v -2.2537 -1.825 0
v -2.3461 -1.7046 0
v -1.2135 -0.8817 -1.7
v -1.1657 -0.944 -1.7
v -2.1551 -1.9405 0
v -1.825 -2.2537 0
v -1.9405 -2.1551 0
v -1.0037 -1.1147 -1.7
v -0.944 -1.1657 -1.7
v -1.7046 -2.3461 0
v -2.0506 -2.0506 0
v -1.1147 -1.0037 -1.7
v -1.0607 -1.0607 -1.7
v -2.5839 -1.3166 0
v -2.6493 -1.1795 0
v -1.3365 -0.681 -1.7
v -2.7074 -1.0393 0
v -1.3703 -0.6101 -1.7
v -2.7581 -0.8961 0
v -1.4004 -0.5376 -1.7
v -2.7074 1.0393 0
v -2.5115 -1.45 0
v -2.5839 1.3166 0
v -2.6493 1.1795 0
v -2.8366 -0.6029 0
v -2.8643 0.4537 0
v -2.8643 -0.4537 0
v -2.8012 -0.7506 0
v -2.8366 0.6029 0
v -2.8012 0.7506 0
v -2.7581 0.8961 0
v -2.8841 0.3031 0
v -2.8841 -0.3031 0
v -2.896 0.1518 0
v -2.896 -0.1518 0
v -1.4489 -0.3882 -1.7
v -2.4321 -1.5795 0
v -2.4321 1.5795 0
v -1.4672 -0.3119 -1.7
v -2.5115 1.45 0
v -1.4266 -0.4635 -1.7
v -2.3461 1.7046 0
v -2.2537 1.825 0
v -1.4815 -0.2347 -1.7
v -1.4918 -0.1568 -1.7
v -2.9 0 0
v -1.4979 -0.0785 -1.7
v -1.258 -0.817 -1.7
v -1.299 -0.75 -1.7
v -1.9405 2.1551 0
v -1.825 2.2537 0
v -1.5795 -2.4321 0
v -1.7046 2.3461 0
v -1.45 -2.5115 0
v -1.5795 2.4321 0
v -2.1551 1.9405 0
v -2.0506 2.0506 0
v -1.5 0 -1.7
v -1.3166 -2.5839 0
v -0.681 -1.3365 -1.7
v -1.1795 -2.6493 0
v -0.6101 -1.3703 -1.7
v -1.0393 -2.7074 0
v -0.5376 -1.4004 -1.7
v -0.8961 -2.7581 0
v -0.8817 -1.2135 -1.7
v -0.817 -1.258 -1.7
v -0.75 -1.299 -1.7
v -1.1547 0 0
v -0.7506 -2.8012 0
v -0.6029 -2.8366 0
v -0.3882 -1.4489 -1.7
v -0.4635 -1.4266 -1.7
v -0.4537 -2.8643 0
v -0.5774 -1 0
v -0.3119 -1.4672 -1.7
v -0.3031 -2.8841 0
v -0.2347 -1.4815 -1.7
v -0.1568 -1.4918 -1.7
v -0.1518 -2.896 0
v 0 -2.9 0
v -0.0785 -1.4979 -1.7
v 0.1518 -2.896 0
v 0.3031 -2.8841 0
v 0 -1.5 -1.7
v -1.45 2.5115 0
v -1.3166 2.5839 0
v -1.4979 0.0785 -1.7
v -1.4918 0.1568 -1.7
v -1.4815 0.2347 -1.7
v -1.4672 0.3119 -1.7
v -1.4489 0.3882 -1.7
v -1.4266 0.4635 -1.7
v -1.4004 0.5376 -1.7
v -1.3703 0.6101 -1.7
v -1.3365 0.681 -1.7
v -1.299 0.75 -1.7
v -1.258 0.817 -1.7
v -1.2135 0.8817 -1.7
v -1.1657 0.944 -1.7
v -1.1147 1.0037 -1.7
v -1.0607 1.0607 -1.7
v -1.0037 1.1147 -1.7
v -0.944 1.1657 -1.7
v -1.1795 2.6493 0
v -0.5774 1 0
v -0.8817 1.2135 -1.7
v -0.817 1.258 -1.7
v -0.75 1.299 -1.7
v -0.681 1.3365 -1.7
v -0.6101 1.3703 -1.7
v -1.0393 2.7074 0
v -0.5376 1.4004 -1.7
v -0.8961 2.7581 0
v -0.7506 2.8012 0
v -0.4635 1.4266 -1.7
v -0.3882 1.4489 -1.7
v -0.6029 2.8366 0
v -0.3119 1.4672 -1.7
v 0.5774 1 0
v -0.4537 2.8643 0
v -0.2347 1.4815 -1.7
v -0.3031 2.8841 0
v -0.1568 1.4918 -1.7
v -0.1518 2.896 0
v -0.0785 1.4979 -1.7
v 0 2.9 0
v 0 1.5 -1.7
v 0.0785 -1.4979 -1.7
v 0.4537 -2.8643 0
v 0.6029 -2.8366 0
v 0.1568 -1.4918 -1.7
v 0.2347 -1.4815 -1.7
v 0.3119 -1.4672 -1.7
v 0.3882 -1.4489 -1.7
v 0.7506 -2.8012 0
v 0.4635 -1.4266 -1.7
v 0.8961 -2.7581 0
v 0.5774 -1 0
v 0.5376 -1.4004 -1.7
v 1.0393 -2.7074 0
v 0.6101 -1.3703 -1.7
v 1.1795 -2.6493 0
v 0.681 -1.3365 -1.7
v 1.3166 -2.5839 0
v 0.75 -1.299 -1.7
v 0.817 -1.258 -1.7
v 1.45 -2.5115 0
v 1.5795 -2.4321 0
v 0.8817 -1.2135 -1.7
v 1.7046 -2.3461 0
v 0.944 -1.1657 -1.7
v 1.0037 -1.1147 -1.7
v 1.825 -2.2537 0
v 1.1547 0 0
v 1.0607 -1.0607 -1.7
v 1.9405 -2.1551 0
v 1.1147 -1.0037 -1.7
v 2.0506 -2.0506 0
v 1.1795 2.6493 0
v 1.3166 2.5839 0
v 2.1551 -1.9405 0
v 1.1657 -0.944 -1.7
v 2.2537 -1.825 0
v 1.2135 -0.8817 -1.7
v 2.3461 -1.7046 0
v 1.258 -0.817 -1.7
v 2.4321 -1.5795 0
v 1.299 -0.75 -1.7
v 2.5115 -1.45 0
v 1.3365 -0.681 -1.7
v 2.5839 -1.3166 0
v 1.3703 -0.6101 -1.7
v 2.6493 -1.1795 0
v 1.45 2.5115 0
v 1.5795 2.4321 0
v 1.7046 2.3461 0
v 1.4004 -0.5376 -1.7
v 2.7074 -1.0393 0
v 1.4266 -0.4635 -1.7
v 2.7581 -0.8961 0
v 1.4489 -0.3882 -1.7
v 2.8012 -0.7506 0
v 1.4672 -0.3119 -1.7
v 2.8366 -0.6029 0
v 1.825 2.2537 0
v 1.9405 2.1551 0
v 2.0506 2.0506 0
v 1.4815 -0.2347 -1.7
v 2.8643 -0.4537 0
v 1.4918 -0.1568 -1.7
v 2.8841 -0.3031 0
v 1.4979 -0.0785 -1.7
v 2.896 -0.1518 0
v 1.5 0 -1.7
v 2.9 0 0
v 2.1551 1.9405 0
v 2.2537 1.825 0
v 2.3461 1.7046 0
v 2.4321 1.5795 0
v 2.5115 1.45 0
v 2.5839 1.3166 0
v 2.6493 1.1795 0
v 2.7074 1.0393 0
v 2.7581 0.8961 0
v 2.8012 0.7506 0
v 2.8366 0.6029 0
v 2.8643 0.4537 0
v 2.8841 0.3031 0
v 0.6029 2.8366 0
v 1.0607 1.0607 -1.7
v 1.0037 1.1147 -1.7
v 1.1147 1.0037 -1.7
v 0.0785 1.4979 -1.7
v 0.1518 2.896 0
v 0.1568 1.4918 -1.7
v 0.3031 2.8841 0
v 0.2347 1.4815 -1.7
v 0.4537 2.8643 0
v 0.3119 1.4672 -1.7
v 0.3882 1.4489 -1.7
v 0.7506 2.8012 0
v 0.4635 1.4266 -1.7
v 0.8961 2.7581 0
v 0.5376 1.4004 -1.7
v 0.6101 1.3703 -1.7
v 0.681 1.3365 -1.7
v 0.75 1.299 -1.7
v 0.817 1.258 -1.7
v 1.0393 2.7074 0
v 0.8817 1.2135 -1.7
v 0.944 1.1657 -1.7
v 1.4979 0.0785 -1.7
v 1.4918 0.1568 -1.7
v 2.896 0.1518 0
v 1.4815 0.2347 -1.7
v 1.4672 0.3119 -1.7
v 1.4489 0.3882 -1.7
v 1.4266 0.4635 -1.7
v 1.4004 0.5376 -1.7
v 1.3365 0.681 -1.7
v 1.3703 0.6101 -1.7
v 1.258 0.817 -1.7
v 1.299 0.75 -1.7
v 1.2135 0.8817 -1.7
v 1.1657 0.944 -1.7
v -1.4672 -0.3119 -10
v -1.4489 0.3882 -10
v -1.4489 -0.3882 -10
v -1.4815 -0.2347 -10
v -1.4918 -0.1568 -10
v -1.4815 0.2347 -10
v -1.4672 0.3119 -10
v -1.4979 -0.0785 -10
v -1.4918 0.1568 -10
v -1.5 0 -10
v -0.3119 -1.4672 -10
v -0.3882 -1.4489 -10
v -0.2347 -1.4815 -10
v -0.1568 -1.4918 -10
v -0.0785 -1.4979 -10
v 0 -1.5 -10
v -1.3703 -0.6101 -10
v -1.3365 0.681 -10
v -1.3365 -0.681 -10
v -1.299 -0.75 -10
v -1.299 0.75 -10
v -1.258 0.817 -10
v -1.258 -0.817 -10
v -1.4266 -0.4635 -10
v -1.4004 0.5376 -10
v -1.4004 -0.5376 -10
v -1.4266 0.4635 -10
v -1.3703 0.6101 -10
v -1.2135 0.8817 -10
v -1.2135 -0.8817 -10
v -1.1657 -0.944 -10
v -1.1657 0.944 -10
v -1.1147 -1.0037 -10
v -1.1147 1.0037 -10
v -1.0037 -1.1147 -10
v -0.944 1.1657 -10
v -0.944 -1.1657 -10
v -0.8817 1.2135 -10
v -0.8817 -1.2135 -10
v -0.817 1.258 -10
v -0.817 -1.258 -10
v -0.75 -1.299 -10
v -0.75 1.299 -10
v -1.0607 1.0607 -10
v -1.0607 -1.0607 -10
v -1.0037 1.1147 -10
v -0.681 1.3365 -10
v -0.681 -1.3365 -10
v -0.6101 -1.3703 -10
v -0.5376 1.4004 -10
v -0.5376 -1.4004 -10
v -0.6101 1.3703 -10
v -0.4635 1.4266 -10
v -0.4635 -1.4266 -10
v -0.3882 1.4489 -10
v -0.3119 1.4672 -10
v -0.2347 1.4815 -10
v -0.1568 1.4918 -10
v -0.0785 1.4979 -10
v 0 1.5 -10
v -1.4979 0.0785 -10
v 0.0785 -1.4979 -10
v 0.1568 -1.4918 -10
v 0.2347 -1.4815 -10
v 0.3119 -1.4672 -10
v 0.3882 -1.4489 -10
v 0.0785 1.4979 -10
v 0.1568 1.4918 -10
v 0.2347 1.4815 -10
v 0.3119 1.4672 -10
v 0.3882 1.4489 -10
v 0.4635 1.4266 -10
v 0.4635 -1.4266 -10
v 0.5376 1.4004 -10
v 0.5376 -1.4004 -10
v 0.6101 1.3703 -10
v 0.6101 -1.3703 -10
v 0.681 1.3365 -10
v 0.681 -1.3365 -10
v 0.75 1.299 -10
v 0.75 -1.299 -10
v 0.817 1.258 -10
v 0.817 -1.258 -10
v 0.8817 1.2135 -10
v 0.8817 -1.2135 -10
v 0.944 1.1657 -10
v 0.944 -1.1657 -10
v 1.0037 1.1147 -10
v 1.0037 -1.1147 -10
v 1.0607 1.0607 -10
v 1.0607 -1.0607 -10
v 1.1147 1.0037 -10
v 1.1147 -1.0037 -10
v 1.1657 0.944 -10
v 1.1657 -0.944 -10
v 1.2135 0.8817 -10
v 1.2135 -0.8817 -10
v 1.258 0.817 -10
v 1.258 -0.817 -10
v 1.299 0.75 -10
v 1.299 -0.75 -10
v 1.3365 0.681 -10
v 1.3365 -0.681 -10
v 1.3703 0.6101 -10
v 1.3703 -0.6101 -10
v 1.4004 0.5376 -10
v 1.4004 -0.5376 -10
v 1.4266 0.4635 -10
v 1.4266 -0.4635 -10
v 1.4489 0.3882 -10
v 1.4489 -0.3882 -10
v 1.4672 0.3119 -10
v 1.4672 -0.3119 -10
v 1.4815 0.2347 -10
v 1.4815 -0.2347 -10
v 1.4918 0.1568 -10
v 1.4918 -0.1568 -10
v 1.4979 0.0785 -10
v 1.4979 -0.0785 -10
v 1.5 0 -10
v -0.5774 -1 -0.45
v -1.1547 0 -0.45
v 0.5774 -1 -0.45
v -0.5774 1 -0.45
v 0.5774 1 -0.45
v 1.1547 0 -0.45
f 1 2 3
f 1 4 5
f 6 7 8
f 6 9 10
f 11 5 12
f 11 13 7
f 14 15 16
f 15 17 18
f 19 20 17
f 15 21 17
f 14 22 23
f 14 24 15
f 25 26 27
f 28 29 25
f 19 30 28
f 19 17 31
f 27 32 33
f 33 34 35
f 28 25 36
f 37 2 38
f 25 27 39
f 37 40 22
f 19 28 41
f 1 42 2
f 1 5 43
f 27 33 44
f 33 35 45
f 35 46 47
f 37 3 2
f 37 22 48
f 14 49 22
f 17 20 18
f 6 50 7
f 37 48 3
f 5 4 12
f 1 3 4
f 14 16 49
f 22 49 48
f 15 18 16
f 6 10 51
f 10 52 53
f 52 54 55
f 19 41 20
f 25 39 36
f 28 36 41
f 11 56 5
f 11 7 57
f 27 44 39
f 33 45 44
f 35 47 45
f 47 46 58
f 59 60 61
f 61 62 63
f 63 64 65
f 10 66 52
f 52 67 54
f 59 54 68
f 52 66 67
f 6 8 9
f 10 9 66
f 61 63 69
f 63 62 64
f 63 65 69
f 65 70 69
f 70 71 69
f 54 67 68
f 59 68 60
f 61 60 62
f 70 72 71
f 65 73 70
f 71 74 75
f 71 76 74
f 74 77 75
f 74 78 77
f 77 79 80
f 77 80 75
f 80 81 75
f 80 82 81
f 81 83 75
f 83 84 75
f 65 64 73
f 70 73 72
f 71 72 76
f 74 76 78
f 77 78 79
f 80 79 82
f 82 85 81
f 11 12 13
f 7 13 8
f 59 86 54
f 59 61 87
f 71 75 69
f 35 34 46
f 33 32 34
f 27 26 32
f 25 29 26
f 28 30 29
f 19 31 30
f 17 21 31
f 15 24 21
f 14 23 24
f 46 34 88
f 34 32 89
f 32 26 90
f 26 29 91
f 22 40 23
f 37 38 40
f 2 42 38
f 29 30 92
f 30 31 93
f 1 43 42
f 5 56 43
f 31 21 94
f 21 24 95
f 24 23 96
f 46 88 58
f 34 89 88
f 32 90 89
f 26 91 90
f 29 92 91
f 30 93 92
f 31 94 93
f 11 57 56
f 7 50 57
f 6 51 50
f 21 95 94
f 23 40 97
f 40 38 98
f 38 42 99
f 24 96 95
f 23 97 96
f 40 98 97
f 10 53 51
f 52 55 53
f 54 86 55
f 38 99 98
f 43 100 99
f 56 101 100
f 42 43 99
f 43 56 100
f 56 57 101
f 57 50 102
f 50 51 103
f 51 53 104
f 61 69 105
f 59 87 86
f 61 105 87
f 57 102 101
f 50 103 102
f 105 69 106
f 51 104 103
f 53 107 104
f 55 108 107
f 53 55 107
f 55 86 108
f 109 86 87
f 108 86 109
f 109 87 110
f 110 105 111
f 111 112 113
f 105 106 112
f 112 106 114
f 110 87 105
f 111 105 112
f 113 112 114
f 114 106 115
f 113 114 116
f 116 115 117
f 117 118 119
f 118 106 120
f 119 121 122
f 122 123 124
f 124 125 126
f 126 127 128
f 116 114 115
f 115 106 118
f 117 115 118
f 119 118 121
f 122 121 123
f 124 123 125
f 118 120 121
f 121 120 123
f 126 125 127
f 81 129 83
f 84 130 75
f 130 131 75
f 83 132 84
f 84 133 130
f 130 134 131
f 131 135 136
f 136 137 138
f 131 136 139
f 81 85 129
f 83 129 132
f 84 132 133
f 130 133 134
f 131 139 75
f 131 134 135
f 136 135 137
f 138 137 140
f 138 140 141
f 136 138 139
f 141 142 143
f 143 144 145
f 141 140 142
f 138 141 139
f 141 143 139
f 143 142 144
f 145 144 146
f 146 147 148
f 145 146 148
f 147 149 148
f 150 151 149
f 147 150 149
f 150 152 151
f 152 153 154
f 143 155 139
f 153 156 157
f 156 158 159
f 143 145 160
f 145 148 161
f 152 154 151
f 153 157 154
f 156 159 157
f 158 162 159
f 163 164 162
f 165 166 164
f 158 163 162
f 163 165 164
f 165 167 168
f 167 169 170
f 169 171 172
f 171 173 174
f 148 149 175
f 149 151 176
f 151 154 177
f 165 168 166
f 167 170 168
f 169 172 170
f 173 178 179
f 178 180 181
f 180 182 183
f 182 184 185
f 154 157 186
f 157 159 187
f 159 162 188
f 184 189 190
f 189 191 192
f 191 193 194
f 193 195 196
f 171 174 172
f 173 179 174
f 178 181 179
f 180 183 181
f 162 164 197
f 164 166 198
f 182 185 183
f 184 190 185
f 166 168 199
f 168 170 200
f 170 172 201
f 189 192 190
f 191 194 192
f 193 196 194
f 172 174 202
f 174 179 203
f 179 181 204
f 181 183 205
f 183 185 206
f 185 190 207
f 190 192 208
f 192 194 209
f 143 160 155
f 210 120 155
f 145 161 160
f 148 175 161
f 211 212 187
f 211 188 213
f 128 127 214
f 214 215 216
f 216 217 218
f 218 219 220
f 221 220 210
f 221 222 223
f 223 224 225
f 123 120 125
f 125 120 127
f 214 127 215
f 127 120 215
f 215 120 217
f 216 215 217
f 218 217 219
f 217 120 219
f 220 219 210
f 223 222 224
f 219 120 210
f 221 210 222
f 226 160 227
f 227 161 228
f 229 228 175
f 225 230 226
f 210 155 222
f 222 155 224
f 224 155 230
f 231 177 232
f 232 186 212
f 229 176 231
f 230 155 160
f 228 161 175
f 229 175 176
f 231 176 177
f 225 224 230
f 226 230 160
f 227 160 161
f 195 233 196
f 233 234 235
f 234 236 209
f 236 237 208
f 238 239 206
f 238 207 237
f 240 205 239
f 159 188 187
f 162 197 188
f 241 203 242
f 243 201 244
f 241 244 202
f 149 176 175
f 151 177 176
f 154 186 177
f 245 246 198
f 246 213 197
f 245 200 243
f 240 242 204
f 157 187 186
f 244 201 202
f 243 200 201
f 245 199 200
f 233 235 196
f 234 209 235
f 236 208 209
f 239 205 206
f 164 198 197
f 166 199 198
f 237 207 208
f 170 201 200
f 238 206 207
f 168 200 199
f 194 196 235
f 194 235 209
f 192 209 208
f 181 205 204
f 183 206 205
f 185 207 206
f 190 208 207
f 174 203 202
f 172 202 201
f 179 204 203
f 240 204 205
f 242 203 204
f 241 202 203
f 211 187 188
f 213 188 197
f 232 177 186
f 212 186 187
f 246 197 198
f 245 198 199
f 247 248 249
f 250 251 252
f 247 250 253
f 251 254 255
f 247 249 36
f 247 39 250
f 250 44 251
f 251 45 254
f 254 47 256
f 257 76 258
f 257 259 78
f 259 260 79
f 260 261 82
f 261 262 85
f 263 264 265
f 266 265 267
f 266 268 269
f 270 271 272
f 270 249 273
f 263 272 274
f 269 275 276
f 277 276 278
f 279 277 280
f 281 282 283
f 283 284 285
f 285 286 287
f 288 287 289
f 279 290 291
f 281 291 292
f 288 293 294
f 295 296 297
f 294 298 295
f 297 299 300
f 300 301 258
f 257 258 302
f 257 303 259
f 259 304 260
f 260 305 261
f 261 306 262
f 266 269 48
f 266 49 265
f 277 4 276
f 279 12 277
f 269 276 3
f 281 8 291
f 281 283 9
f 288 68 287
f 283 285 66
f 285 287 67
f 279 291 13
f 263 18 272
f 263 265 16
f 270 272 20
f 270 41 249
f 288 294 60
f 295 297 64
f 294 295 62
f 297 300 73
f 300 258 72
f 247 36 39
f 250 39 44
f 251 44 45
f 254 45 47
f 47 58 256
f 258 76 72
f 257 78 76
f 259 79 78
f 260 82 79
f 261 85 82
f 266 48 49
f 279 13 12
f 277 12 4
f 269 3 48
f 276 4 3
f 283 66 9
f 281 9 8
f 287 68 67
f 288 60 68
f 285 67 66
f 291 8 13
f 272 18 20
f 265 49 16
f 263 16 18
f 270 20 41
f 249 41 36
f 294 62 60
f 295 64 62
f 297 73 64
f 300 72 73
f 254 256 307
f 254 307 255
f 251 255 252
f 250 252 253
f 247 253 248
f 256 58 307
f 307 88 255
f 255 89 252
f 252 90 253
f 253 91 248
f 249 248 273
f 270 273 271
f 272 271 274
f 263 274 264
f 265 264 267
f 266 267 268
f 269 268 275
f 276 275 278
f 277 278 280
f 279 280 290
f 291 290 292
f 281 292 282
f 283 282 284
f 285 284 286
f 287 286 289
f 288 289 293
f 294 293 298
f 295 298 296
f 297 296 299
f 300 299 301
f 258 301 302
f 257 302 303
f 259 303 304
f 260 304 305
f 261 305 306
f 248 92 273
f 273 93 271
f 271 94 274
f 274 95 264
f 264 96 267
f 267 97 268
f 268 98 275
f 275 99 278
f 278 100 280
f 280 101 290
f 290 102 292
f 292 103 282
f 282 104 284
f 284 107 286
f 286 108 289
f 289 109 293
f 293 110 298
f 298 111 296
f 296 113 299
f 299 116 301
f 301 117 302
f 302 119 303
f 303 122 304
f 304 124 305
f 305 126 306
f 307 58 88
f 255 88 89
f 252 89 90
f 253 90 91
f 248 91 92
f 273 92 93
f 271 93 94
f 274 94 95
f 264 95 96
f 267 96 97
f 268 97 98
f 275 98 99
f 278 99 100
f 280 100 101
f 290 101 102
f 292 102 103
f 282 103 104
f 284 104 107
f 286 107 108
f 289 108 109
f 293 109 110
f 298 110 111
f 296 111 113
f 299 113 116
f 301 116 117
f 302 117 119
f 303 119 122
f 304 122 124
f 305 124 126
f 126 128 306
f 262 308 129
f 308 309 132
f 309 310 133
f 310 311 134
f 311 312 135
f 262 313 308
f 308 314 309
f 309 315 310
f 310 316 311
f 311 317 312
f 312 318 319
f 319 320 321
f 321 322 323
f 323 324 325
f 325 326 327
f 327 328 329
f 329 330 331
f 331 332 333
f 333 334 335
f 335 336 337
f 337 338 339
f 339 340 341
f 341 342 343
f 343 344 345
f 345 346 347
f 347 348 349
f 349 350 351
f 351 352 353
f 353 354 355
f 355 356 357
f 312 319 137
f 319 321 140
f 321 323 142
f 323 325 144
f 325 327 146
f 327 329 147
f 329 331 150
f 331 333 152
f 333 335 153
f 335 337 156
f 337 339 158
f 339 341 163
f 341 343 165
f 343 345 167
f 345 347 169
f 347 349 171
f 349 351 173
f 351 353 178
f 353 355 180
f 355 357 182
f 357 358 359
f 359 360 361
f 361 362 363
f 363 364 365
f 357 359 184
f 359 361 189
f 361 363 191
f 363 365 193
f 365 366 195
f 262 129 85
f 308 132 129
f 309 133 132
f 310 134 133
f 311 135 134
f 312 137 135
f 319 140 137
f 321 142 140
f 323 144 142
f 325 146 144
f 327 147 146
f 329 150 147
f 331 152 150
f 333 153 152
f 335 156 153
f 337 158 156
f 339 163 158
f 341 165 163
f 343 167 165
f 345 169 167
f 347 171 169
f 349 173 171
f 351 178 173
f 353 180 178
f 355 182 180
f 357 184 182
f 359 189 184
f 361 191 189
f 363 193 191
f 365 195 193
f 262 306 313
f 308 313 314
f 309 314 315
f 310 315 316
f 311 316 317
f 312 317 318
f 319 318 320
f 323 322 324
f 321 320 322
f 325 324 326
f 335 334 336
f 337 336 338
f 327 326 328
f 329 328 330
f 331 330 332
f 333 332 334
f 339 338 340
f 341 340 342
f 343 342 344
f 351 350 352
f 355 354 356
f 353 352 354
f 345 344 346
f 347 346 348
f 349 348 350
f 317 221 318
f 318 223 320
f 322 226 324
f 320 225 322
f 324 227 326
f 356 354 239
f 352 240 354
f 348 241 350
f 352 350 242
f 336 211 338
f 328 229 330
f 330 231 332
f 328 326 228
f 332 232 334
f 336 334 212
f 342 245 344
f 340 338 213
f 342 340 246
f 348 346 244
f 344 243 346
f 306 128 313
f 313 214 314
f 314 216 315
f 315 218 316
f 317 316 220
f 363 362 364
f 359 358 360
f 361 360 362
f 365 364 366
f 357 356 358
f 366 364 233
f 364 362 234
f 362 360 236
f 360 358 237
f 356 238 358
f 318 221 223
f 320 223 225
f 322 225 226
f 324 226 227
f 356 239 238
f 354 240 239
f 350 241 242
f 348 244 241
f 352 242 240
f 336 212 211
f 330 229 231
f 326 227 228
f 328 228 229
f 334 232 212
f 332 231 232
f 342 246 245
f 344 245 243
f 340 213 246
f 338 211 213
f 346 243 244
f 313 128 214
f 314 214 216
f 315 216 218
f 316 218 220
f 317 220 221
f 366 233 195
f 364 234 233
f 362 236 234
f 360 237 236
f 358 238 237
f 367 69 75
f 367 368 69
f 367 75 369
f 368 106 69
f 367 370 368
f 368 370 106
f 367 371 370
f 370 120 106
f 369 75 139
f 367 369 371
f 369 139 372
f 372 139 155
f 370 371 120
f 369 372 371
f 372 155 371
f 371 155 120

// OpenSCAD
// file: C:/gh/oomlout_oobb_part_motor_gearbox_wave_drive_version_5/parts/oobb_part_motor_gearbox_wave_drive_version_5_12_to_1_reduction/compact_helpers.scad
// Reusable native geometry helpers.
function polar(r,a)=[r*cos(a),r*sin(a)];
function rotate_point(p,a)=[p[0]*cos(a)-p[1]*sin(a),p[0]*sin(a)+p[1]*cos(a)];
function profile_point(t)=let(
    s=sqrt(pow(pitch_radius,2)-pow(eccentricity*sin(cavity_count*t),2)),
    r=eccentricity*cos(cavity_count*t)+s,
    xi=atan2(eccentricity*cavity_count*sin(cavity_count*t),s),
    rr=roller_radius+profile_clearance)
    [r*cos(t)+rr*cos(t+xi),r*sin(t)+rr*sin(t+xi)];
function profile_points(upper=false)=[for(i=[0:cavity_count*profile_samples_per_cavity-1])
    rotate_point(profile_point(360*i/(cavity_count*profile_samples_per_cavity)),0)];
function roller_position(i,a,upper=false)=let(
    t=-a/roller_count+360*i/roller_count,
    rel=t-a-(upper?180:0),
    r=eccentricity*cos(rel)+sqrt(pow(pitch_radius,2)-pow(eccentricity*sin(rel),2))) polar(r,t);
module tube(ro,ri,h) { difference() { cylinder(r=ro,h=h); translate([0,0,-eps]) cylinder(r=ri,h=h+2*eps); } }
module screw_hole(size,h) { scale([1,1,h]) { if(size=="m2") oobb_hole_m2(); if(size=="m3") oobb_hole_m3(); if(size=="m6") oobb_hole_m6(); } }
module socket_recess(size,depth) {
    // OOBB socket head starts at the under-head plane and extends outward.
    scale([1,1,depth/(size=="m3"?3.2:2.2)]) {
        if(size=="m3") oobb_socket_m3(); else oobb_socket_m2();
    }
}
module at_mounts(points) { for(p=points) translate([p[0],p[1],0]) children(); }
module shaft_cut(h,fit=shaft_fit_clearance) {
    linear_extrude(h) intersection() {
        circle(r=input_shaft_diameter/2+fit);
        translate([-10,-10]) square([10+input_shaft_diameter/2-input_shaft_flat_depth+fit,20]);
    }
}
module rounded_rectangle_plate(size=[119,119,3],radius=1.5) {
    hull() for(x=[-1,1],y=[-1,1]) translate([x*(size[0]/2-radius),y*(size[1]/2-radius),0]) cylinder(r=radius,h=size[2]);
}
module grid_cuts(h) {
    // Actual OOBB grid centres: six units are centred on half-pitch offsets.
    for(i=[0:base_width-1],j=[0:base_height-1])
        let(x=(i-(base_width-1)/2)*oobb_grid_pitch,y=(j-(base_height-1)/2)*oobb_grid_pitch)
        if(sqrt(x*x+y*y)>housing_radius+3.5)
            translate([x,y,-eps]) screw_hole("m6",h+2*eps);
}
module wave_generator() {
    render(convexity=20) difference() {
        tube(wave_radius,12.6,wave_height);
        translate([0,0,wave_seat_z]) cylinder(r=13.5+bearing_seat_clearance,h=wave_height);
        translate([0,0,wave_height-wave_cap_depth]) cylinder(r=22.15,h=wave_cap_depth+eps);
        at_mounts(wave_mounts) {
            translate([0,0,-eps]) screw_hole("m3",wave_height+2*eps);
            translate([0,0,wave_nut_z]) scale([1,1,(wave_height-wave_cap_depth-wave_nut_z+eps)/2.7]) oobb_nut_m3();
        }
    }
}
module wave_cap() {
    render(convexity=20) difference() {
        tube(22,12.6,wave_cap_depth);
        at_mounts(wave_mounts) {
            translate([0,0,-eps]) screw_hole("m3",wave_cap_depth+2*eps);
            translate([0,0,wave_cap_depth-wave_head_recess]) socket_recess("m3",wave_head_recess+eps);
        }
    }
}
// file: C:/gh/oomlout_oobb_part_motor_gearbox_wave_drive_version_5/parts/oobb_part_motor_gearbox_wave_drive_version_5_12_to_1_reduction/oobb_hardware.scad
module oobb_rounded_rectangle_edges(size, radius, radius_top, radius_bottom) {
      rt=radius_top; rb=radius_bottom; depth=size[2]; n=16;
      lower=rb==0 ? [[radius,0]] :
        [for(i=[0:n]) let(a=-90+90*i/n) [radius-rb+rb*cos(a),rb+rb*sin(a)]];
      upper=rt==0 ? [[radius,depth]] :
        [for(i=[0:n]) let(a=90*i/n) [radius-rt+rt*cos(a),depth-rt+rt*sin(a)]];
      hull() for(x=[-size[0]/2+radius,size[0]/2-radius])
        for(y=[-size[1]/2+radius,size[1]/2-radius])
          translate([x,y,0]) rotate_extrude()
            polygon(concat([[0,0]],lower,upper,[[0,depth]]));
    }
// Generated from installed OOBB v5. All primitives use overhang=True.

module oobb_motor_plate_body() {


difference() {
	union() {
		translate(v = [0, 0, 0]) {
			rotate(a = [0, 0, 0]) {
				difference() {
					union() {
						oobb_rounded_rectangle_edges(radius = 1.5, radius_bottom = 1.5, radius_top = 1.5, size = [89.0, 89.0, 4.0]);
					}
					union();
				}
			}
		}
	}
	union();
}

}

module oobb_hole_m2() {


difference() {
	union() {
		cylinder(h = 1, r = 1.35);
	}
	union();
}

}

module oobb_hole_m3() {


difference() {
	union() {
		cylinder(h = 1, r = 1.8);
	}
	union();
}

}

module oobb_hole_m6() {


difference() {
	union() {
		cylinder(h = 1, r = 3.25);
	}
	union();
}

}

module oobb_nut_m2() {


difference() {
	union() {
		translate(v = [0, 0, 0]) {
			rotate(a = [0, 0, 0]) {
				difference() {
					union() {
						linear_extrude(height = 2.2) {
							polygon(points = [[2.4234, 0.0], [1.2117000000000002, 2.0987259635312085], [-1.2116999999999996, 2.0987259635312085], [-2.4234, 2.967809053053696e-16], [-1.211700000000001, -2.098725963531208], [1.2116999999999984, -2.0987259635312094]]);
						}
						translate(v = [-1.25, -2.75, -0.3]) {
							cube(size = [2.5, 5.5, 0.3]);
						}
						translate(v = [-1.25, -1.25, -0.6]) {
							cube(size = [2.5, 2.5, 0.3]);
						}
						translate(v = [-1.25, -2.75, 2.2]) {
							cube(size = [2.5, 5.5, 0.3]);
						}
						translate(v = [-1.25, -1.25, 2.5]) {
							cube(size = [2.5, 2.5, 0.3]);
						}
					}
					union();
				}
			}
		}
	}
	union();
}

}

module oobb_socket_m2() {


difference() {
	union() {
		translate(v = [0, 0, 0]) {
			rotate(a = [0, 0, 0]) {
				difference() {
					union() {
						cylinder(h = 2.2, r = 2.1);
						translate(v = [-1.25, -2.75, -0.3]) {
							cube(size = [2.5, 5.5, 0.3]);
						}
						translate(v = [-1.25, -1.25, -0.6]) {
							cube(size = [2.5, 2.5, 0.3]);
						}
					}
					union();
				}
			}
		}
	}
	union();
}

}

module oobb_nut_m3() {


difference() {
	union() {
		translate(v = [0, 0, 0]) {
			rotate(a = [0, 0, 0]) {
				difference() {
					union() {
						linear_extrude(height = 2.7) {
							polygon(points = [[3.4619999999999997, 0.0], [1.7310000000000003, 2.9981799479017264], [-1.7309999999999992, 2.9981799479017264], [-3.4619999999999997, 4.2397272186481365e-16], [-1.7310000000000014, -2.998179947901726], [1.7309999999999977, -2.9981799479017277]]);
						}
						translate(v = [-1.75, -3.25, -0.3]) {
							cube(size = [3.5, 6.5, 0.3]);
						}
						translate(v = [-1.75, -1.75, -0.6]) {
							cube(size = [3.5, 3.5, 0.3]);
						}
						translate(v = [-1.75, -3.25, 2.7]) {
							cube(size = [3.5, 6.5, 0.3]);
						}
						translate(v = [-1.75, -1.75, 3.0]) {
							cube(size = [3.5, 3.5, 0.3]);
						}
					}
					union();
				}
			}
		}
	}
	union();
}

}

module oobb_socket_m3() {


difference() {
	union() {
		translate(v = [0, 0, 0]) {
			rotate(a = [0, 0, 0]) {
				difference() {
					union() {
						cylinder(h = 3.2, r = 3.0);
						translate(v = [-1.75, -3.25, -0.3]) {
							cube(size = [3.5, 6.5, 0.3]);
						}
						translate(v = [-1.75, -1.75, -0.6]) {
							cube(size = [3.5, 3.5, 0.3]);
						}
					}
					union();
				}
			}
		}
	}
	union();
}

}

module oobb_nut_m6() {


difference() {
	union() {
		translate(v = [0, 0, 0]) {
			rotate(a = [0, 0, 0]) {
				difference() {
					union() {
						linear_extrude(height = 5.2) {
							polygon(points = [[5.914249999999999, 0.0], [2.957125, 5.1218907443321156], [-2.9571249999999982, 5.1218907443321156], [-5.914249999999999, 7.242867331857232e-16], [-2.9571250000000022, -5.121890744332115], [2.9571249999999956, -5.121890744332118]]);
						}
						translate(v = [-2.875, -5.0, -0.3]) {
							cube(size = [5.75, 10, 0.3]);
						}
						translate(v = [-2.875, -2.875, -0.6]) {
							cube(size = [5.75, 5.75, 0.3]);
						}
						translate(v = [-2.875, -5.0, 5.2]) {
							cube(size = [5.75, 10, 0.3]);
						}
						translate(v = [-2.875, -2.875, 5.5]) {
							cube(size = [5.75, 5.75, 0.3]);
						}
					}
					union();
				}
			}
		}
	}
	union();
}

}
// file: C:/gh/oomlout_oobb_part_motor_gearbox_wave_drive_version_5/parts/oobb_part_motor_gearbox_wave_drive_version_5_12_to_1_reduction/parameters.scad
// Generated by working_scad.py. Edit the Python recipe to persist changes.
style = "version_5";
reduction = 12;
bearing_output = "6810";
bearing_wave = "6704";
roller_diameter = 7.0;
roller_bore_diameter = 3.2;
roller_length = 12.0;
roller_material = "nylon";
roller_bank_count = 1;
motor_plate_depth = 4.0;
motor_body_depth = 40.0;
motor_shaft_length = 24.0;
motor_hole_pitch = 31.0;
motor_thread_depth = 6.0;
motor_pilot_diameter = 22.0;
motor_pilot_height = 2.0;
output_holder_wall = 7.0;
max_screw_length = 35.0;
eccentricity = 0.75;
wave_radius = 23.25;
profile_clearance = 0.15;
roller_slot_clearance = 0.3;
roller_end_clearance = 0.3;
cage_wall = 4.0;
cage_plate_depth = 3.0;
bearing_seat_clearance = 0.1;
journal_clearance = 0.05;
bearing_axial_clearance = 0.2;
output_plate_diameter = 65.0;
output_plate_depth = 6.0;
output_grid_pitch = 15.0;
output_face_clearance = 0.3;
output_socket_recess = 4.0;
output_screw_length = 16;
output_nut_depth = 5.2;
output_nut_height = 5.0;
motor_shaft_end_clearance = 0.5;
base_width = 6;
base_height = 6;
oobb_grid_pitch = 15.0;
oobb_size_allowance = 1.0;
base_edge_radius = 1.5;
housing_flange_corner_radius = 1.5;
housing_screw_pitch_radius = 35.5;
housing_screw_count = 6;
input_shaft_diameter = 5.0;
input_shaft_flat_depth = 0.5;
shaft_fit_clearance = 0.1;
cage_screw_count = 4;
profile_samples_per_cavity = 100;
circle_fragments = 120;
overhang = true;
run_scad = true;
run_solidcraft = false;
generate_stl = true;
generate_previews = true;
generate_renders = true;
validate_geometry = true;
package_outputs = true;
render_threads = 8;
variant = "default";
// main file
include <C:/gh/oomlout_oobb_part_motor_gearbox_wave_drive_version_5/parts/oobb_part_motor_gearbox_wave_drive_version_5_12_to_1_reduction/parameters.scad>
include <C:/gh/oomlout_oobb_part_motor_gearbox_wave_drive_version_5/parts/oobb_part_motor_gearbox_wave_drive_version_5_12_to_1_reduction/oobb_hardware.scad>
include <C:/gh/oomlout_oobb_part_motor_gearbox_wave_drive_version_5/parts/oobb_part_motor_gearbox_wave_drive_version_5_12_to_1_reduction/geometry.scad>
difference() { difference() {
	union() {
		translate(v = [0, 0, 0]) {
			rotate(a = [0, 0, 0]) {
				difference() {
					union() {
						translate(v = [0, 0, -1.7]) {
							cylinder(h = 1.7, r1 = 1.5, r2 = 2.9);
						}
						translate(v = [0, 0, -10.0]) {
							cylinder(h = 10, r = 1.5);
						}
					}
					union();
				}
			}
		}
	}
	union();
}
 translate([0,0,-0.45]) cylinder(r=1.1547005383792517,h=0.46,$fn=6); }
